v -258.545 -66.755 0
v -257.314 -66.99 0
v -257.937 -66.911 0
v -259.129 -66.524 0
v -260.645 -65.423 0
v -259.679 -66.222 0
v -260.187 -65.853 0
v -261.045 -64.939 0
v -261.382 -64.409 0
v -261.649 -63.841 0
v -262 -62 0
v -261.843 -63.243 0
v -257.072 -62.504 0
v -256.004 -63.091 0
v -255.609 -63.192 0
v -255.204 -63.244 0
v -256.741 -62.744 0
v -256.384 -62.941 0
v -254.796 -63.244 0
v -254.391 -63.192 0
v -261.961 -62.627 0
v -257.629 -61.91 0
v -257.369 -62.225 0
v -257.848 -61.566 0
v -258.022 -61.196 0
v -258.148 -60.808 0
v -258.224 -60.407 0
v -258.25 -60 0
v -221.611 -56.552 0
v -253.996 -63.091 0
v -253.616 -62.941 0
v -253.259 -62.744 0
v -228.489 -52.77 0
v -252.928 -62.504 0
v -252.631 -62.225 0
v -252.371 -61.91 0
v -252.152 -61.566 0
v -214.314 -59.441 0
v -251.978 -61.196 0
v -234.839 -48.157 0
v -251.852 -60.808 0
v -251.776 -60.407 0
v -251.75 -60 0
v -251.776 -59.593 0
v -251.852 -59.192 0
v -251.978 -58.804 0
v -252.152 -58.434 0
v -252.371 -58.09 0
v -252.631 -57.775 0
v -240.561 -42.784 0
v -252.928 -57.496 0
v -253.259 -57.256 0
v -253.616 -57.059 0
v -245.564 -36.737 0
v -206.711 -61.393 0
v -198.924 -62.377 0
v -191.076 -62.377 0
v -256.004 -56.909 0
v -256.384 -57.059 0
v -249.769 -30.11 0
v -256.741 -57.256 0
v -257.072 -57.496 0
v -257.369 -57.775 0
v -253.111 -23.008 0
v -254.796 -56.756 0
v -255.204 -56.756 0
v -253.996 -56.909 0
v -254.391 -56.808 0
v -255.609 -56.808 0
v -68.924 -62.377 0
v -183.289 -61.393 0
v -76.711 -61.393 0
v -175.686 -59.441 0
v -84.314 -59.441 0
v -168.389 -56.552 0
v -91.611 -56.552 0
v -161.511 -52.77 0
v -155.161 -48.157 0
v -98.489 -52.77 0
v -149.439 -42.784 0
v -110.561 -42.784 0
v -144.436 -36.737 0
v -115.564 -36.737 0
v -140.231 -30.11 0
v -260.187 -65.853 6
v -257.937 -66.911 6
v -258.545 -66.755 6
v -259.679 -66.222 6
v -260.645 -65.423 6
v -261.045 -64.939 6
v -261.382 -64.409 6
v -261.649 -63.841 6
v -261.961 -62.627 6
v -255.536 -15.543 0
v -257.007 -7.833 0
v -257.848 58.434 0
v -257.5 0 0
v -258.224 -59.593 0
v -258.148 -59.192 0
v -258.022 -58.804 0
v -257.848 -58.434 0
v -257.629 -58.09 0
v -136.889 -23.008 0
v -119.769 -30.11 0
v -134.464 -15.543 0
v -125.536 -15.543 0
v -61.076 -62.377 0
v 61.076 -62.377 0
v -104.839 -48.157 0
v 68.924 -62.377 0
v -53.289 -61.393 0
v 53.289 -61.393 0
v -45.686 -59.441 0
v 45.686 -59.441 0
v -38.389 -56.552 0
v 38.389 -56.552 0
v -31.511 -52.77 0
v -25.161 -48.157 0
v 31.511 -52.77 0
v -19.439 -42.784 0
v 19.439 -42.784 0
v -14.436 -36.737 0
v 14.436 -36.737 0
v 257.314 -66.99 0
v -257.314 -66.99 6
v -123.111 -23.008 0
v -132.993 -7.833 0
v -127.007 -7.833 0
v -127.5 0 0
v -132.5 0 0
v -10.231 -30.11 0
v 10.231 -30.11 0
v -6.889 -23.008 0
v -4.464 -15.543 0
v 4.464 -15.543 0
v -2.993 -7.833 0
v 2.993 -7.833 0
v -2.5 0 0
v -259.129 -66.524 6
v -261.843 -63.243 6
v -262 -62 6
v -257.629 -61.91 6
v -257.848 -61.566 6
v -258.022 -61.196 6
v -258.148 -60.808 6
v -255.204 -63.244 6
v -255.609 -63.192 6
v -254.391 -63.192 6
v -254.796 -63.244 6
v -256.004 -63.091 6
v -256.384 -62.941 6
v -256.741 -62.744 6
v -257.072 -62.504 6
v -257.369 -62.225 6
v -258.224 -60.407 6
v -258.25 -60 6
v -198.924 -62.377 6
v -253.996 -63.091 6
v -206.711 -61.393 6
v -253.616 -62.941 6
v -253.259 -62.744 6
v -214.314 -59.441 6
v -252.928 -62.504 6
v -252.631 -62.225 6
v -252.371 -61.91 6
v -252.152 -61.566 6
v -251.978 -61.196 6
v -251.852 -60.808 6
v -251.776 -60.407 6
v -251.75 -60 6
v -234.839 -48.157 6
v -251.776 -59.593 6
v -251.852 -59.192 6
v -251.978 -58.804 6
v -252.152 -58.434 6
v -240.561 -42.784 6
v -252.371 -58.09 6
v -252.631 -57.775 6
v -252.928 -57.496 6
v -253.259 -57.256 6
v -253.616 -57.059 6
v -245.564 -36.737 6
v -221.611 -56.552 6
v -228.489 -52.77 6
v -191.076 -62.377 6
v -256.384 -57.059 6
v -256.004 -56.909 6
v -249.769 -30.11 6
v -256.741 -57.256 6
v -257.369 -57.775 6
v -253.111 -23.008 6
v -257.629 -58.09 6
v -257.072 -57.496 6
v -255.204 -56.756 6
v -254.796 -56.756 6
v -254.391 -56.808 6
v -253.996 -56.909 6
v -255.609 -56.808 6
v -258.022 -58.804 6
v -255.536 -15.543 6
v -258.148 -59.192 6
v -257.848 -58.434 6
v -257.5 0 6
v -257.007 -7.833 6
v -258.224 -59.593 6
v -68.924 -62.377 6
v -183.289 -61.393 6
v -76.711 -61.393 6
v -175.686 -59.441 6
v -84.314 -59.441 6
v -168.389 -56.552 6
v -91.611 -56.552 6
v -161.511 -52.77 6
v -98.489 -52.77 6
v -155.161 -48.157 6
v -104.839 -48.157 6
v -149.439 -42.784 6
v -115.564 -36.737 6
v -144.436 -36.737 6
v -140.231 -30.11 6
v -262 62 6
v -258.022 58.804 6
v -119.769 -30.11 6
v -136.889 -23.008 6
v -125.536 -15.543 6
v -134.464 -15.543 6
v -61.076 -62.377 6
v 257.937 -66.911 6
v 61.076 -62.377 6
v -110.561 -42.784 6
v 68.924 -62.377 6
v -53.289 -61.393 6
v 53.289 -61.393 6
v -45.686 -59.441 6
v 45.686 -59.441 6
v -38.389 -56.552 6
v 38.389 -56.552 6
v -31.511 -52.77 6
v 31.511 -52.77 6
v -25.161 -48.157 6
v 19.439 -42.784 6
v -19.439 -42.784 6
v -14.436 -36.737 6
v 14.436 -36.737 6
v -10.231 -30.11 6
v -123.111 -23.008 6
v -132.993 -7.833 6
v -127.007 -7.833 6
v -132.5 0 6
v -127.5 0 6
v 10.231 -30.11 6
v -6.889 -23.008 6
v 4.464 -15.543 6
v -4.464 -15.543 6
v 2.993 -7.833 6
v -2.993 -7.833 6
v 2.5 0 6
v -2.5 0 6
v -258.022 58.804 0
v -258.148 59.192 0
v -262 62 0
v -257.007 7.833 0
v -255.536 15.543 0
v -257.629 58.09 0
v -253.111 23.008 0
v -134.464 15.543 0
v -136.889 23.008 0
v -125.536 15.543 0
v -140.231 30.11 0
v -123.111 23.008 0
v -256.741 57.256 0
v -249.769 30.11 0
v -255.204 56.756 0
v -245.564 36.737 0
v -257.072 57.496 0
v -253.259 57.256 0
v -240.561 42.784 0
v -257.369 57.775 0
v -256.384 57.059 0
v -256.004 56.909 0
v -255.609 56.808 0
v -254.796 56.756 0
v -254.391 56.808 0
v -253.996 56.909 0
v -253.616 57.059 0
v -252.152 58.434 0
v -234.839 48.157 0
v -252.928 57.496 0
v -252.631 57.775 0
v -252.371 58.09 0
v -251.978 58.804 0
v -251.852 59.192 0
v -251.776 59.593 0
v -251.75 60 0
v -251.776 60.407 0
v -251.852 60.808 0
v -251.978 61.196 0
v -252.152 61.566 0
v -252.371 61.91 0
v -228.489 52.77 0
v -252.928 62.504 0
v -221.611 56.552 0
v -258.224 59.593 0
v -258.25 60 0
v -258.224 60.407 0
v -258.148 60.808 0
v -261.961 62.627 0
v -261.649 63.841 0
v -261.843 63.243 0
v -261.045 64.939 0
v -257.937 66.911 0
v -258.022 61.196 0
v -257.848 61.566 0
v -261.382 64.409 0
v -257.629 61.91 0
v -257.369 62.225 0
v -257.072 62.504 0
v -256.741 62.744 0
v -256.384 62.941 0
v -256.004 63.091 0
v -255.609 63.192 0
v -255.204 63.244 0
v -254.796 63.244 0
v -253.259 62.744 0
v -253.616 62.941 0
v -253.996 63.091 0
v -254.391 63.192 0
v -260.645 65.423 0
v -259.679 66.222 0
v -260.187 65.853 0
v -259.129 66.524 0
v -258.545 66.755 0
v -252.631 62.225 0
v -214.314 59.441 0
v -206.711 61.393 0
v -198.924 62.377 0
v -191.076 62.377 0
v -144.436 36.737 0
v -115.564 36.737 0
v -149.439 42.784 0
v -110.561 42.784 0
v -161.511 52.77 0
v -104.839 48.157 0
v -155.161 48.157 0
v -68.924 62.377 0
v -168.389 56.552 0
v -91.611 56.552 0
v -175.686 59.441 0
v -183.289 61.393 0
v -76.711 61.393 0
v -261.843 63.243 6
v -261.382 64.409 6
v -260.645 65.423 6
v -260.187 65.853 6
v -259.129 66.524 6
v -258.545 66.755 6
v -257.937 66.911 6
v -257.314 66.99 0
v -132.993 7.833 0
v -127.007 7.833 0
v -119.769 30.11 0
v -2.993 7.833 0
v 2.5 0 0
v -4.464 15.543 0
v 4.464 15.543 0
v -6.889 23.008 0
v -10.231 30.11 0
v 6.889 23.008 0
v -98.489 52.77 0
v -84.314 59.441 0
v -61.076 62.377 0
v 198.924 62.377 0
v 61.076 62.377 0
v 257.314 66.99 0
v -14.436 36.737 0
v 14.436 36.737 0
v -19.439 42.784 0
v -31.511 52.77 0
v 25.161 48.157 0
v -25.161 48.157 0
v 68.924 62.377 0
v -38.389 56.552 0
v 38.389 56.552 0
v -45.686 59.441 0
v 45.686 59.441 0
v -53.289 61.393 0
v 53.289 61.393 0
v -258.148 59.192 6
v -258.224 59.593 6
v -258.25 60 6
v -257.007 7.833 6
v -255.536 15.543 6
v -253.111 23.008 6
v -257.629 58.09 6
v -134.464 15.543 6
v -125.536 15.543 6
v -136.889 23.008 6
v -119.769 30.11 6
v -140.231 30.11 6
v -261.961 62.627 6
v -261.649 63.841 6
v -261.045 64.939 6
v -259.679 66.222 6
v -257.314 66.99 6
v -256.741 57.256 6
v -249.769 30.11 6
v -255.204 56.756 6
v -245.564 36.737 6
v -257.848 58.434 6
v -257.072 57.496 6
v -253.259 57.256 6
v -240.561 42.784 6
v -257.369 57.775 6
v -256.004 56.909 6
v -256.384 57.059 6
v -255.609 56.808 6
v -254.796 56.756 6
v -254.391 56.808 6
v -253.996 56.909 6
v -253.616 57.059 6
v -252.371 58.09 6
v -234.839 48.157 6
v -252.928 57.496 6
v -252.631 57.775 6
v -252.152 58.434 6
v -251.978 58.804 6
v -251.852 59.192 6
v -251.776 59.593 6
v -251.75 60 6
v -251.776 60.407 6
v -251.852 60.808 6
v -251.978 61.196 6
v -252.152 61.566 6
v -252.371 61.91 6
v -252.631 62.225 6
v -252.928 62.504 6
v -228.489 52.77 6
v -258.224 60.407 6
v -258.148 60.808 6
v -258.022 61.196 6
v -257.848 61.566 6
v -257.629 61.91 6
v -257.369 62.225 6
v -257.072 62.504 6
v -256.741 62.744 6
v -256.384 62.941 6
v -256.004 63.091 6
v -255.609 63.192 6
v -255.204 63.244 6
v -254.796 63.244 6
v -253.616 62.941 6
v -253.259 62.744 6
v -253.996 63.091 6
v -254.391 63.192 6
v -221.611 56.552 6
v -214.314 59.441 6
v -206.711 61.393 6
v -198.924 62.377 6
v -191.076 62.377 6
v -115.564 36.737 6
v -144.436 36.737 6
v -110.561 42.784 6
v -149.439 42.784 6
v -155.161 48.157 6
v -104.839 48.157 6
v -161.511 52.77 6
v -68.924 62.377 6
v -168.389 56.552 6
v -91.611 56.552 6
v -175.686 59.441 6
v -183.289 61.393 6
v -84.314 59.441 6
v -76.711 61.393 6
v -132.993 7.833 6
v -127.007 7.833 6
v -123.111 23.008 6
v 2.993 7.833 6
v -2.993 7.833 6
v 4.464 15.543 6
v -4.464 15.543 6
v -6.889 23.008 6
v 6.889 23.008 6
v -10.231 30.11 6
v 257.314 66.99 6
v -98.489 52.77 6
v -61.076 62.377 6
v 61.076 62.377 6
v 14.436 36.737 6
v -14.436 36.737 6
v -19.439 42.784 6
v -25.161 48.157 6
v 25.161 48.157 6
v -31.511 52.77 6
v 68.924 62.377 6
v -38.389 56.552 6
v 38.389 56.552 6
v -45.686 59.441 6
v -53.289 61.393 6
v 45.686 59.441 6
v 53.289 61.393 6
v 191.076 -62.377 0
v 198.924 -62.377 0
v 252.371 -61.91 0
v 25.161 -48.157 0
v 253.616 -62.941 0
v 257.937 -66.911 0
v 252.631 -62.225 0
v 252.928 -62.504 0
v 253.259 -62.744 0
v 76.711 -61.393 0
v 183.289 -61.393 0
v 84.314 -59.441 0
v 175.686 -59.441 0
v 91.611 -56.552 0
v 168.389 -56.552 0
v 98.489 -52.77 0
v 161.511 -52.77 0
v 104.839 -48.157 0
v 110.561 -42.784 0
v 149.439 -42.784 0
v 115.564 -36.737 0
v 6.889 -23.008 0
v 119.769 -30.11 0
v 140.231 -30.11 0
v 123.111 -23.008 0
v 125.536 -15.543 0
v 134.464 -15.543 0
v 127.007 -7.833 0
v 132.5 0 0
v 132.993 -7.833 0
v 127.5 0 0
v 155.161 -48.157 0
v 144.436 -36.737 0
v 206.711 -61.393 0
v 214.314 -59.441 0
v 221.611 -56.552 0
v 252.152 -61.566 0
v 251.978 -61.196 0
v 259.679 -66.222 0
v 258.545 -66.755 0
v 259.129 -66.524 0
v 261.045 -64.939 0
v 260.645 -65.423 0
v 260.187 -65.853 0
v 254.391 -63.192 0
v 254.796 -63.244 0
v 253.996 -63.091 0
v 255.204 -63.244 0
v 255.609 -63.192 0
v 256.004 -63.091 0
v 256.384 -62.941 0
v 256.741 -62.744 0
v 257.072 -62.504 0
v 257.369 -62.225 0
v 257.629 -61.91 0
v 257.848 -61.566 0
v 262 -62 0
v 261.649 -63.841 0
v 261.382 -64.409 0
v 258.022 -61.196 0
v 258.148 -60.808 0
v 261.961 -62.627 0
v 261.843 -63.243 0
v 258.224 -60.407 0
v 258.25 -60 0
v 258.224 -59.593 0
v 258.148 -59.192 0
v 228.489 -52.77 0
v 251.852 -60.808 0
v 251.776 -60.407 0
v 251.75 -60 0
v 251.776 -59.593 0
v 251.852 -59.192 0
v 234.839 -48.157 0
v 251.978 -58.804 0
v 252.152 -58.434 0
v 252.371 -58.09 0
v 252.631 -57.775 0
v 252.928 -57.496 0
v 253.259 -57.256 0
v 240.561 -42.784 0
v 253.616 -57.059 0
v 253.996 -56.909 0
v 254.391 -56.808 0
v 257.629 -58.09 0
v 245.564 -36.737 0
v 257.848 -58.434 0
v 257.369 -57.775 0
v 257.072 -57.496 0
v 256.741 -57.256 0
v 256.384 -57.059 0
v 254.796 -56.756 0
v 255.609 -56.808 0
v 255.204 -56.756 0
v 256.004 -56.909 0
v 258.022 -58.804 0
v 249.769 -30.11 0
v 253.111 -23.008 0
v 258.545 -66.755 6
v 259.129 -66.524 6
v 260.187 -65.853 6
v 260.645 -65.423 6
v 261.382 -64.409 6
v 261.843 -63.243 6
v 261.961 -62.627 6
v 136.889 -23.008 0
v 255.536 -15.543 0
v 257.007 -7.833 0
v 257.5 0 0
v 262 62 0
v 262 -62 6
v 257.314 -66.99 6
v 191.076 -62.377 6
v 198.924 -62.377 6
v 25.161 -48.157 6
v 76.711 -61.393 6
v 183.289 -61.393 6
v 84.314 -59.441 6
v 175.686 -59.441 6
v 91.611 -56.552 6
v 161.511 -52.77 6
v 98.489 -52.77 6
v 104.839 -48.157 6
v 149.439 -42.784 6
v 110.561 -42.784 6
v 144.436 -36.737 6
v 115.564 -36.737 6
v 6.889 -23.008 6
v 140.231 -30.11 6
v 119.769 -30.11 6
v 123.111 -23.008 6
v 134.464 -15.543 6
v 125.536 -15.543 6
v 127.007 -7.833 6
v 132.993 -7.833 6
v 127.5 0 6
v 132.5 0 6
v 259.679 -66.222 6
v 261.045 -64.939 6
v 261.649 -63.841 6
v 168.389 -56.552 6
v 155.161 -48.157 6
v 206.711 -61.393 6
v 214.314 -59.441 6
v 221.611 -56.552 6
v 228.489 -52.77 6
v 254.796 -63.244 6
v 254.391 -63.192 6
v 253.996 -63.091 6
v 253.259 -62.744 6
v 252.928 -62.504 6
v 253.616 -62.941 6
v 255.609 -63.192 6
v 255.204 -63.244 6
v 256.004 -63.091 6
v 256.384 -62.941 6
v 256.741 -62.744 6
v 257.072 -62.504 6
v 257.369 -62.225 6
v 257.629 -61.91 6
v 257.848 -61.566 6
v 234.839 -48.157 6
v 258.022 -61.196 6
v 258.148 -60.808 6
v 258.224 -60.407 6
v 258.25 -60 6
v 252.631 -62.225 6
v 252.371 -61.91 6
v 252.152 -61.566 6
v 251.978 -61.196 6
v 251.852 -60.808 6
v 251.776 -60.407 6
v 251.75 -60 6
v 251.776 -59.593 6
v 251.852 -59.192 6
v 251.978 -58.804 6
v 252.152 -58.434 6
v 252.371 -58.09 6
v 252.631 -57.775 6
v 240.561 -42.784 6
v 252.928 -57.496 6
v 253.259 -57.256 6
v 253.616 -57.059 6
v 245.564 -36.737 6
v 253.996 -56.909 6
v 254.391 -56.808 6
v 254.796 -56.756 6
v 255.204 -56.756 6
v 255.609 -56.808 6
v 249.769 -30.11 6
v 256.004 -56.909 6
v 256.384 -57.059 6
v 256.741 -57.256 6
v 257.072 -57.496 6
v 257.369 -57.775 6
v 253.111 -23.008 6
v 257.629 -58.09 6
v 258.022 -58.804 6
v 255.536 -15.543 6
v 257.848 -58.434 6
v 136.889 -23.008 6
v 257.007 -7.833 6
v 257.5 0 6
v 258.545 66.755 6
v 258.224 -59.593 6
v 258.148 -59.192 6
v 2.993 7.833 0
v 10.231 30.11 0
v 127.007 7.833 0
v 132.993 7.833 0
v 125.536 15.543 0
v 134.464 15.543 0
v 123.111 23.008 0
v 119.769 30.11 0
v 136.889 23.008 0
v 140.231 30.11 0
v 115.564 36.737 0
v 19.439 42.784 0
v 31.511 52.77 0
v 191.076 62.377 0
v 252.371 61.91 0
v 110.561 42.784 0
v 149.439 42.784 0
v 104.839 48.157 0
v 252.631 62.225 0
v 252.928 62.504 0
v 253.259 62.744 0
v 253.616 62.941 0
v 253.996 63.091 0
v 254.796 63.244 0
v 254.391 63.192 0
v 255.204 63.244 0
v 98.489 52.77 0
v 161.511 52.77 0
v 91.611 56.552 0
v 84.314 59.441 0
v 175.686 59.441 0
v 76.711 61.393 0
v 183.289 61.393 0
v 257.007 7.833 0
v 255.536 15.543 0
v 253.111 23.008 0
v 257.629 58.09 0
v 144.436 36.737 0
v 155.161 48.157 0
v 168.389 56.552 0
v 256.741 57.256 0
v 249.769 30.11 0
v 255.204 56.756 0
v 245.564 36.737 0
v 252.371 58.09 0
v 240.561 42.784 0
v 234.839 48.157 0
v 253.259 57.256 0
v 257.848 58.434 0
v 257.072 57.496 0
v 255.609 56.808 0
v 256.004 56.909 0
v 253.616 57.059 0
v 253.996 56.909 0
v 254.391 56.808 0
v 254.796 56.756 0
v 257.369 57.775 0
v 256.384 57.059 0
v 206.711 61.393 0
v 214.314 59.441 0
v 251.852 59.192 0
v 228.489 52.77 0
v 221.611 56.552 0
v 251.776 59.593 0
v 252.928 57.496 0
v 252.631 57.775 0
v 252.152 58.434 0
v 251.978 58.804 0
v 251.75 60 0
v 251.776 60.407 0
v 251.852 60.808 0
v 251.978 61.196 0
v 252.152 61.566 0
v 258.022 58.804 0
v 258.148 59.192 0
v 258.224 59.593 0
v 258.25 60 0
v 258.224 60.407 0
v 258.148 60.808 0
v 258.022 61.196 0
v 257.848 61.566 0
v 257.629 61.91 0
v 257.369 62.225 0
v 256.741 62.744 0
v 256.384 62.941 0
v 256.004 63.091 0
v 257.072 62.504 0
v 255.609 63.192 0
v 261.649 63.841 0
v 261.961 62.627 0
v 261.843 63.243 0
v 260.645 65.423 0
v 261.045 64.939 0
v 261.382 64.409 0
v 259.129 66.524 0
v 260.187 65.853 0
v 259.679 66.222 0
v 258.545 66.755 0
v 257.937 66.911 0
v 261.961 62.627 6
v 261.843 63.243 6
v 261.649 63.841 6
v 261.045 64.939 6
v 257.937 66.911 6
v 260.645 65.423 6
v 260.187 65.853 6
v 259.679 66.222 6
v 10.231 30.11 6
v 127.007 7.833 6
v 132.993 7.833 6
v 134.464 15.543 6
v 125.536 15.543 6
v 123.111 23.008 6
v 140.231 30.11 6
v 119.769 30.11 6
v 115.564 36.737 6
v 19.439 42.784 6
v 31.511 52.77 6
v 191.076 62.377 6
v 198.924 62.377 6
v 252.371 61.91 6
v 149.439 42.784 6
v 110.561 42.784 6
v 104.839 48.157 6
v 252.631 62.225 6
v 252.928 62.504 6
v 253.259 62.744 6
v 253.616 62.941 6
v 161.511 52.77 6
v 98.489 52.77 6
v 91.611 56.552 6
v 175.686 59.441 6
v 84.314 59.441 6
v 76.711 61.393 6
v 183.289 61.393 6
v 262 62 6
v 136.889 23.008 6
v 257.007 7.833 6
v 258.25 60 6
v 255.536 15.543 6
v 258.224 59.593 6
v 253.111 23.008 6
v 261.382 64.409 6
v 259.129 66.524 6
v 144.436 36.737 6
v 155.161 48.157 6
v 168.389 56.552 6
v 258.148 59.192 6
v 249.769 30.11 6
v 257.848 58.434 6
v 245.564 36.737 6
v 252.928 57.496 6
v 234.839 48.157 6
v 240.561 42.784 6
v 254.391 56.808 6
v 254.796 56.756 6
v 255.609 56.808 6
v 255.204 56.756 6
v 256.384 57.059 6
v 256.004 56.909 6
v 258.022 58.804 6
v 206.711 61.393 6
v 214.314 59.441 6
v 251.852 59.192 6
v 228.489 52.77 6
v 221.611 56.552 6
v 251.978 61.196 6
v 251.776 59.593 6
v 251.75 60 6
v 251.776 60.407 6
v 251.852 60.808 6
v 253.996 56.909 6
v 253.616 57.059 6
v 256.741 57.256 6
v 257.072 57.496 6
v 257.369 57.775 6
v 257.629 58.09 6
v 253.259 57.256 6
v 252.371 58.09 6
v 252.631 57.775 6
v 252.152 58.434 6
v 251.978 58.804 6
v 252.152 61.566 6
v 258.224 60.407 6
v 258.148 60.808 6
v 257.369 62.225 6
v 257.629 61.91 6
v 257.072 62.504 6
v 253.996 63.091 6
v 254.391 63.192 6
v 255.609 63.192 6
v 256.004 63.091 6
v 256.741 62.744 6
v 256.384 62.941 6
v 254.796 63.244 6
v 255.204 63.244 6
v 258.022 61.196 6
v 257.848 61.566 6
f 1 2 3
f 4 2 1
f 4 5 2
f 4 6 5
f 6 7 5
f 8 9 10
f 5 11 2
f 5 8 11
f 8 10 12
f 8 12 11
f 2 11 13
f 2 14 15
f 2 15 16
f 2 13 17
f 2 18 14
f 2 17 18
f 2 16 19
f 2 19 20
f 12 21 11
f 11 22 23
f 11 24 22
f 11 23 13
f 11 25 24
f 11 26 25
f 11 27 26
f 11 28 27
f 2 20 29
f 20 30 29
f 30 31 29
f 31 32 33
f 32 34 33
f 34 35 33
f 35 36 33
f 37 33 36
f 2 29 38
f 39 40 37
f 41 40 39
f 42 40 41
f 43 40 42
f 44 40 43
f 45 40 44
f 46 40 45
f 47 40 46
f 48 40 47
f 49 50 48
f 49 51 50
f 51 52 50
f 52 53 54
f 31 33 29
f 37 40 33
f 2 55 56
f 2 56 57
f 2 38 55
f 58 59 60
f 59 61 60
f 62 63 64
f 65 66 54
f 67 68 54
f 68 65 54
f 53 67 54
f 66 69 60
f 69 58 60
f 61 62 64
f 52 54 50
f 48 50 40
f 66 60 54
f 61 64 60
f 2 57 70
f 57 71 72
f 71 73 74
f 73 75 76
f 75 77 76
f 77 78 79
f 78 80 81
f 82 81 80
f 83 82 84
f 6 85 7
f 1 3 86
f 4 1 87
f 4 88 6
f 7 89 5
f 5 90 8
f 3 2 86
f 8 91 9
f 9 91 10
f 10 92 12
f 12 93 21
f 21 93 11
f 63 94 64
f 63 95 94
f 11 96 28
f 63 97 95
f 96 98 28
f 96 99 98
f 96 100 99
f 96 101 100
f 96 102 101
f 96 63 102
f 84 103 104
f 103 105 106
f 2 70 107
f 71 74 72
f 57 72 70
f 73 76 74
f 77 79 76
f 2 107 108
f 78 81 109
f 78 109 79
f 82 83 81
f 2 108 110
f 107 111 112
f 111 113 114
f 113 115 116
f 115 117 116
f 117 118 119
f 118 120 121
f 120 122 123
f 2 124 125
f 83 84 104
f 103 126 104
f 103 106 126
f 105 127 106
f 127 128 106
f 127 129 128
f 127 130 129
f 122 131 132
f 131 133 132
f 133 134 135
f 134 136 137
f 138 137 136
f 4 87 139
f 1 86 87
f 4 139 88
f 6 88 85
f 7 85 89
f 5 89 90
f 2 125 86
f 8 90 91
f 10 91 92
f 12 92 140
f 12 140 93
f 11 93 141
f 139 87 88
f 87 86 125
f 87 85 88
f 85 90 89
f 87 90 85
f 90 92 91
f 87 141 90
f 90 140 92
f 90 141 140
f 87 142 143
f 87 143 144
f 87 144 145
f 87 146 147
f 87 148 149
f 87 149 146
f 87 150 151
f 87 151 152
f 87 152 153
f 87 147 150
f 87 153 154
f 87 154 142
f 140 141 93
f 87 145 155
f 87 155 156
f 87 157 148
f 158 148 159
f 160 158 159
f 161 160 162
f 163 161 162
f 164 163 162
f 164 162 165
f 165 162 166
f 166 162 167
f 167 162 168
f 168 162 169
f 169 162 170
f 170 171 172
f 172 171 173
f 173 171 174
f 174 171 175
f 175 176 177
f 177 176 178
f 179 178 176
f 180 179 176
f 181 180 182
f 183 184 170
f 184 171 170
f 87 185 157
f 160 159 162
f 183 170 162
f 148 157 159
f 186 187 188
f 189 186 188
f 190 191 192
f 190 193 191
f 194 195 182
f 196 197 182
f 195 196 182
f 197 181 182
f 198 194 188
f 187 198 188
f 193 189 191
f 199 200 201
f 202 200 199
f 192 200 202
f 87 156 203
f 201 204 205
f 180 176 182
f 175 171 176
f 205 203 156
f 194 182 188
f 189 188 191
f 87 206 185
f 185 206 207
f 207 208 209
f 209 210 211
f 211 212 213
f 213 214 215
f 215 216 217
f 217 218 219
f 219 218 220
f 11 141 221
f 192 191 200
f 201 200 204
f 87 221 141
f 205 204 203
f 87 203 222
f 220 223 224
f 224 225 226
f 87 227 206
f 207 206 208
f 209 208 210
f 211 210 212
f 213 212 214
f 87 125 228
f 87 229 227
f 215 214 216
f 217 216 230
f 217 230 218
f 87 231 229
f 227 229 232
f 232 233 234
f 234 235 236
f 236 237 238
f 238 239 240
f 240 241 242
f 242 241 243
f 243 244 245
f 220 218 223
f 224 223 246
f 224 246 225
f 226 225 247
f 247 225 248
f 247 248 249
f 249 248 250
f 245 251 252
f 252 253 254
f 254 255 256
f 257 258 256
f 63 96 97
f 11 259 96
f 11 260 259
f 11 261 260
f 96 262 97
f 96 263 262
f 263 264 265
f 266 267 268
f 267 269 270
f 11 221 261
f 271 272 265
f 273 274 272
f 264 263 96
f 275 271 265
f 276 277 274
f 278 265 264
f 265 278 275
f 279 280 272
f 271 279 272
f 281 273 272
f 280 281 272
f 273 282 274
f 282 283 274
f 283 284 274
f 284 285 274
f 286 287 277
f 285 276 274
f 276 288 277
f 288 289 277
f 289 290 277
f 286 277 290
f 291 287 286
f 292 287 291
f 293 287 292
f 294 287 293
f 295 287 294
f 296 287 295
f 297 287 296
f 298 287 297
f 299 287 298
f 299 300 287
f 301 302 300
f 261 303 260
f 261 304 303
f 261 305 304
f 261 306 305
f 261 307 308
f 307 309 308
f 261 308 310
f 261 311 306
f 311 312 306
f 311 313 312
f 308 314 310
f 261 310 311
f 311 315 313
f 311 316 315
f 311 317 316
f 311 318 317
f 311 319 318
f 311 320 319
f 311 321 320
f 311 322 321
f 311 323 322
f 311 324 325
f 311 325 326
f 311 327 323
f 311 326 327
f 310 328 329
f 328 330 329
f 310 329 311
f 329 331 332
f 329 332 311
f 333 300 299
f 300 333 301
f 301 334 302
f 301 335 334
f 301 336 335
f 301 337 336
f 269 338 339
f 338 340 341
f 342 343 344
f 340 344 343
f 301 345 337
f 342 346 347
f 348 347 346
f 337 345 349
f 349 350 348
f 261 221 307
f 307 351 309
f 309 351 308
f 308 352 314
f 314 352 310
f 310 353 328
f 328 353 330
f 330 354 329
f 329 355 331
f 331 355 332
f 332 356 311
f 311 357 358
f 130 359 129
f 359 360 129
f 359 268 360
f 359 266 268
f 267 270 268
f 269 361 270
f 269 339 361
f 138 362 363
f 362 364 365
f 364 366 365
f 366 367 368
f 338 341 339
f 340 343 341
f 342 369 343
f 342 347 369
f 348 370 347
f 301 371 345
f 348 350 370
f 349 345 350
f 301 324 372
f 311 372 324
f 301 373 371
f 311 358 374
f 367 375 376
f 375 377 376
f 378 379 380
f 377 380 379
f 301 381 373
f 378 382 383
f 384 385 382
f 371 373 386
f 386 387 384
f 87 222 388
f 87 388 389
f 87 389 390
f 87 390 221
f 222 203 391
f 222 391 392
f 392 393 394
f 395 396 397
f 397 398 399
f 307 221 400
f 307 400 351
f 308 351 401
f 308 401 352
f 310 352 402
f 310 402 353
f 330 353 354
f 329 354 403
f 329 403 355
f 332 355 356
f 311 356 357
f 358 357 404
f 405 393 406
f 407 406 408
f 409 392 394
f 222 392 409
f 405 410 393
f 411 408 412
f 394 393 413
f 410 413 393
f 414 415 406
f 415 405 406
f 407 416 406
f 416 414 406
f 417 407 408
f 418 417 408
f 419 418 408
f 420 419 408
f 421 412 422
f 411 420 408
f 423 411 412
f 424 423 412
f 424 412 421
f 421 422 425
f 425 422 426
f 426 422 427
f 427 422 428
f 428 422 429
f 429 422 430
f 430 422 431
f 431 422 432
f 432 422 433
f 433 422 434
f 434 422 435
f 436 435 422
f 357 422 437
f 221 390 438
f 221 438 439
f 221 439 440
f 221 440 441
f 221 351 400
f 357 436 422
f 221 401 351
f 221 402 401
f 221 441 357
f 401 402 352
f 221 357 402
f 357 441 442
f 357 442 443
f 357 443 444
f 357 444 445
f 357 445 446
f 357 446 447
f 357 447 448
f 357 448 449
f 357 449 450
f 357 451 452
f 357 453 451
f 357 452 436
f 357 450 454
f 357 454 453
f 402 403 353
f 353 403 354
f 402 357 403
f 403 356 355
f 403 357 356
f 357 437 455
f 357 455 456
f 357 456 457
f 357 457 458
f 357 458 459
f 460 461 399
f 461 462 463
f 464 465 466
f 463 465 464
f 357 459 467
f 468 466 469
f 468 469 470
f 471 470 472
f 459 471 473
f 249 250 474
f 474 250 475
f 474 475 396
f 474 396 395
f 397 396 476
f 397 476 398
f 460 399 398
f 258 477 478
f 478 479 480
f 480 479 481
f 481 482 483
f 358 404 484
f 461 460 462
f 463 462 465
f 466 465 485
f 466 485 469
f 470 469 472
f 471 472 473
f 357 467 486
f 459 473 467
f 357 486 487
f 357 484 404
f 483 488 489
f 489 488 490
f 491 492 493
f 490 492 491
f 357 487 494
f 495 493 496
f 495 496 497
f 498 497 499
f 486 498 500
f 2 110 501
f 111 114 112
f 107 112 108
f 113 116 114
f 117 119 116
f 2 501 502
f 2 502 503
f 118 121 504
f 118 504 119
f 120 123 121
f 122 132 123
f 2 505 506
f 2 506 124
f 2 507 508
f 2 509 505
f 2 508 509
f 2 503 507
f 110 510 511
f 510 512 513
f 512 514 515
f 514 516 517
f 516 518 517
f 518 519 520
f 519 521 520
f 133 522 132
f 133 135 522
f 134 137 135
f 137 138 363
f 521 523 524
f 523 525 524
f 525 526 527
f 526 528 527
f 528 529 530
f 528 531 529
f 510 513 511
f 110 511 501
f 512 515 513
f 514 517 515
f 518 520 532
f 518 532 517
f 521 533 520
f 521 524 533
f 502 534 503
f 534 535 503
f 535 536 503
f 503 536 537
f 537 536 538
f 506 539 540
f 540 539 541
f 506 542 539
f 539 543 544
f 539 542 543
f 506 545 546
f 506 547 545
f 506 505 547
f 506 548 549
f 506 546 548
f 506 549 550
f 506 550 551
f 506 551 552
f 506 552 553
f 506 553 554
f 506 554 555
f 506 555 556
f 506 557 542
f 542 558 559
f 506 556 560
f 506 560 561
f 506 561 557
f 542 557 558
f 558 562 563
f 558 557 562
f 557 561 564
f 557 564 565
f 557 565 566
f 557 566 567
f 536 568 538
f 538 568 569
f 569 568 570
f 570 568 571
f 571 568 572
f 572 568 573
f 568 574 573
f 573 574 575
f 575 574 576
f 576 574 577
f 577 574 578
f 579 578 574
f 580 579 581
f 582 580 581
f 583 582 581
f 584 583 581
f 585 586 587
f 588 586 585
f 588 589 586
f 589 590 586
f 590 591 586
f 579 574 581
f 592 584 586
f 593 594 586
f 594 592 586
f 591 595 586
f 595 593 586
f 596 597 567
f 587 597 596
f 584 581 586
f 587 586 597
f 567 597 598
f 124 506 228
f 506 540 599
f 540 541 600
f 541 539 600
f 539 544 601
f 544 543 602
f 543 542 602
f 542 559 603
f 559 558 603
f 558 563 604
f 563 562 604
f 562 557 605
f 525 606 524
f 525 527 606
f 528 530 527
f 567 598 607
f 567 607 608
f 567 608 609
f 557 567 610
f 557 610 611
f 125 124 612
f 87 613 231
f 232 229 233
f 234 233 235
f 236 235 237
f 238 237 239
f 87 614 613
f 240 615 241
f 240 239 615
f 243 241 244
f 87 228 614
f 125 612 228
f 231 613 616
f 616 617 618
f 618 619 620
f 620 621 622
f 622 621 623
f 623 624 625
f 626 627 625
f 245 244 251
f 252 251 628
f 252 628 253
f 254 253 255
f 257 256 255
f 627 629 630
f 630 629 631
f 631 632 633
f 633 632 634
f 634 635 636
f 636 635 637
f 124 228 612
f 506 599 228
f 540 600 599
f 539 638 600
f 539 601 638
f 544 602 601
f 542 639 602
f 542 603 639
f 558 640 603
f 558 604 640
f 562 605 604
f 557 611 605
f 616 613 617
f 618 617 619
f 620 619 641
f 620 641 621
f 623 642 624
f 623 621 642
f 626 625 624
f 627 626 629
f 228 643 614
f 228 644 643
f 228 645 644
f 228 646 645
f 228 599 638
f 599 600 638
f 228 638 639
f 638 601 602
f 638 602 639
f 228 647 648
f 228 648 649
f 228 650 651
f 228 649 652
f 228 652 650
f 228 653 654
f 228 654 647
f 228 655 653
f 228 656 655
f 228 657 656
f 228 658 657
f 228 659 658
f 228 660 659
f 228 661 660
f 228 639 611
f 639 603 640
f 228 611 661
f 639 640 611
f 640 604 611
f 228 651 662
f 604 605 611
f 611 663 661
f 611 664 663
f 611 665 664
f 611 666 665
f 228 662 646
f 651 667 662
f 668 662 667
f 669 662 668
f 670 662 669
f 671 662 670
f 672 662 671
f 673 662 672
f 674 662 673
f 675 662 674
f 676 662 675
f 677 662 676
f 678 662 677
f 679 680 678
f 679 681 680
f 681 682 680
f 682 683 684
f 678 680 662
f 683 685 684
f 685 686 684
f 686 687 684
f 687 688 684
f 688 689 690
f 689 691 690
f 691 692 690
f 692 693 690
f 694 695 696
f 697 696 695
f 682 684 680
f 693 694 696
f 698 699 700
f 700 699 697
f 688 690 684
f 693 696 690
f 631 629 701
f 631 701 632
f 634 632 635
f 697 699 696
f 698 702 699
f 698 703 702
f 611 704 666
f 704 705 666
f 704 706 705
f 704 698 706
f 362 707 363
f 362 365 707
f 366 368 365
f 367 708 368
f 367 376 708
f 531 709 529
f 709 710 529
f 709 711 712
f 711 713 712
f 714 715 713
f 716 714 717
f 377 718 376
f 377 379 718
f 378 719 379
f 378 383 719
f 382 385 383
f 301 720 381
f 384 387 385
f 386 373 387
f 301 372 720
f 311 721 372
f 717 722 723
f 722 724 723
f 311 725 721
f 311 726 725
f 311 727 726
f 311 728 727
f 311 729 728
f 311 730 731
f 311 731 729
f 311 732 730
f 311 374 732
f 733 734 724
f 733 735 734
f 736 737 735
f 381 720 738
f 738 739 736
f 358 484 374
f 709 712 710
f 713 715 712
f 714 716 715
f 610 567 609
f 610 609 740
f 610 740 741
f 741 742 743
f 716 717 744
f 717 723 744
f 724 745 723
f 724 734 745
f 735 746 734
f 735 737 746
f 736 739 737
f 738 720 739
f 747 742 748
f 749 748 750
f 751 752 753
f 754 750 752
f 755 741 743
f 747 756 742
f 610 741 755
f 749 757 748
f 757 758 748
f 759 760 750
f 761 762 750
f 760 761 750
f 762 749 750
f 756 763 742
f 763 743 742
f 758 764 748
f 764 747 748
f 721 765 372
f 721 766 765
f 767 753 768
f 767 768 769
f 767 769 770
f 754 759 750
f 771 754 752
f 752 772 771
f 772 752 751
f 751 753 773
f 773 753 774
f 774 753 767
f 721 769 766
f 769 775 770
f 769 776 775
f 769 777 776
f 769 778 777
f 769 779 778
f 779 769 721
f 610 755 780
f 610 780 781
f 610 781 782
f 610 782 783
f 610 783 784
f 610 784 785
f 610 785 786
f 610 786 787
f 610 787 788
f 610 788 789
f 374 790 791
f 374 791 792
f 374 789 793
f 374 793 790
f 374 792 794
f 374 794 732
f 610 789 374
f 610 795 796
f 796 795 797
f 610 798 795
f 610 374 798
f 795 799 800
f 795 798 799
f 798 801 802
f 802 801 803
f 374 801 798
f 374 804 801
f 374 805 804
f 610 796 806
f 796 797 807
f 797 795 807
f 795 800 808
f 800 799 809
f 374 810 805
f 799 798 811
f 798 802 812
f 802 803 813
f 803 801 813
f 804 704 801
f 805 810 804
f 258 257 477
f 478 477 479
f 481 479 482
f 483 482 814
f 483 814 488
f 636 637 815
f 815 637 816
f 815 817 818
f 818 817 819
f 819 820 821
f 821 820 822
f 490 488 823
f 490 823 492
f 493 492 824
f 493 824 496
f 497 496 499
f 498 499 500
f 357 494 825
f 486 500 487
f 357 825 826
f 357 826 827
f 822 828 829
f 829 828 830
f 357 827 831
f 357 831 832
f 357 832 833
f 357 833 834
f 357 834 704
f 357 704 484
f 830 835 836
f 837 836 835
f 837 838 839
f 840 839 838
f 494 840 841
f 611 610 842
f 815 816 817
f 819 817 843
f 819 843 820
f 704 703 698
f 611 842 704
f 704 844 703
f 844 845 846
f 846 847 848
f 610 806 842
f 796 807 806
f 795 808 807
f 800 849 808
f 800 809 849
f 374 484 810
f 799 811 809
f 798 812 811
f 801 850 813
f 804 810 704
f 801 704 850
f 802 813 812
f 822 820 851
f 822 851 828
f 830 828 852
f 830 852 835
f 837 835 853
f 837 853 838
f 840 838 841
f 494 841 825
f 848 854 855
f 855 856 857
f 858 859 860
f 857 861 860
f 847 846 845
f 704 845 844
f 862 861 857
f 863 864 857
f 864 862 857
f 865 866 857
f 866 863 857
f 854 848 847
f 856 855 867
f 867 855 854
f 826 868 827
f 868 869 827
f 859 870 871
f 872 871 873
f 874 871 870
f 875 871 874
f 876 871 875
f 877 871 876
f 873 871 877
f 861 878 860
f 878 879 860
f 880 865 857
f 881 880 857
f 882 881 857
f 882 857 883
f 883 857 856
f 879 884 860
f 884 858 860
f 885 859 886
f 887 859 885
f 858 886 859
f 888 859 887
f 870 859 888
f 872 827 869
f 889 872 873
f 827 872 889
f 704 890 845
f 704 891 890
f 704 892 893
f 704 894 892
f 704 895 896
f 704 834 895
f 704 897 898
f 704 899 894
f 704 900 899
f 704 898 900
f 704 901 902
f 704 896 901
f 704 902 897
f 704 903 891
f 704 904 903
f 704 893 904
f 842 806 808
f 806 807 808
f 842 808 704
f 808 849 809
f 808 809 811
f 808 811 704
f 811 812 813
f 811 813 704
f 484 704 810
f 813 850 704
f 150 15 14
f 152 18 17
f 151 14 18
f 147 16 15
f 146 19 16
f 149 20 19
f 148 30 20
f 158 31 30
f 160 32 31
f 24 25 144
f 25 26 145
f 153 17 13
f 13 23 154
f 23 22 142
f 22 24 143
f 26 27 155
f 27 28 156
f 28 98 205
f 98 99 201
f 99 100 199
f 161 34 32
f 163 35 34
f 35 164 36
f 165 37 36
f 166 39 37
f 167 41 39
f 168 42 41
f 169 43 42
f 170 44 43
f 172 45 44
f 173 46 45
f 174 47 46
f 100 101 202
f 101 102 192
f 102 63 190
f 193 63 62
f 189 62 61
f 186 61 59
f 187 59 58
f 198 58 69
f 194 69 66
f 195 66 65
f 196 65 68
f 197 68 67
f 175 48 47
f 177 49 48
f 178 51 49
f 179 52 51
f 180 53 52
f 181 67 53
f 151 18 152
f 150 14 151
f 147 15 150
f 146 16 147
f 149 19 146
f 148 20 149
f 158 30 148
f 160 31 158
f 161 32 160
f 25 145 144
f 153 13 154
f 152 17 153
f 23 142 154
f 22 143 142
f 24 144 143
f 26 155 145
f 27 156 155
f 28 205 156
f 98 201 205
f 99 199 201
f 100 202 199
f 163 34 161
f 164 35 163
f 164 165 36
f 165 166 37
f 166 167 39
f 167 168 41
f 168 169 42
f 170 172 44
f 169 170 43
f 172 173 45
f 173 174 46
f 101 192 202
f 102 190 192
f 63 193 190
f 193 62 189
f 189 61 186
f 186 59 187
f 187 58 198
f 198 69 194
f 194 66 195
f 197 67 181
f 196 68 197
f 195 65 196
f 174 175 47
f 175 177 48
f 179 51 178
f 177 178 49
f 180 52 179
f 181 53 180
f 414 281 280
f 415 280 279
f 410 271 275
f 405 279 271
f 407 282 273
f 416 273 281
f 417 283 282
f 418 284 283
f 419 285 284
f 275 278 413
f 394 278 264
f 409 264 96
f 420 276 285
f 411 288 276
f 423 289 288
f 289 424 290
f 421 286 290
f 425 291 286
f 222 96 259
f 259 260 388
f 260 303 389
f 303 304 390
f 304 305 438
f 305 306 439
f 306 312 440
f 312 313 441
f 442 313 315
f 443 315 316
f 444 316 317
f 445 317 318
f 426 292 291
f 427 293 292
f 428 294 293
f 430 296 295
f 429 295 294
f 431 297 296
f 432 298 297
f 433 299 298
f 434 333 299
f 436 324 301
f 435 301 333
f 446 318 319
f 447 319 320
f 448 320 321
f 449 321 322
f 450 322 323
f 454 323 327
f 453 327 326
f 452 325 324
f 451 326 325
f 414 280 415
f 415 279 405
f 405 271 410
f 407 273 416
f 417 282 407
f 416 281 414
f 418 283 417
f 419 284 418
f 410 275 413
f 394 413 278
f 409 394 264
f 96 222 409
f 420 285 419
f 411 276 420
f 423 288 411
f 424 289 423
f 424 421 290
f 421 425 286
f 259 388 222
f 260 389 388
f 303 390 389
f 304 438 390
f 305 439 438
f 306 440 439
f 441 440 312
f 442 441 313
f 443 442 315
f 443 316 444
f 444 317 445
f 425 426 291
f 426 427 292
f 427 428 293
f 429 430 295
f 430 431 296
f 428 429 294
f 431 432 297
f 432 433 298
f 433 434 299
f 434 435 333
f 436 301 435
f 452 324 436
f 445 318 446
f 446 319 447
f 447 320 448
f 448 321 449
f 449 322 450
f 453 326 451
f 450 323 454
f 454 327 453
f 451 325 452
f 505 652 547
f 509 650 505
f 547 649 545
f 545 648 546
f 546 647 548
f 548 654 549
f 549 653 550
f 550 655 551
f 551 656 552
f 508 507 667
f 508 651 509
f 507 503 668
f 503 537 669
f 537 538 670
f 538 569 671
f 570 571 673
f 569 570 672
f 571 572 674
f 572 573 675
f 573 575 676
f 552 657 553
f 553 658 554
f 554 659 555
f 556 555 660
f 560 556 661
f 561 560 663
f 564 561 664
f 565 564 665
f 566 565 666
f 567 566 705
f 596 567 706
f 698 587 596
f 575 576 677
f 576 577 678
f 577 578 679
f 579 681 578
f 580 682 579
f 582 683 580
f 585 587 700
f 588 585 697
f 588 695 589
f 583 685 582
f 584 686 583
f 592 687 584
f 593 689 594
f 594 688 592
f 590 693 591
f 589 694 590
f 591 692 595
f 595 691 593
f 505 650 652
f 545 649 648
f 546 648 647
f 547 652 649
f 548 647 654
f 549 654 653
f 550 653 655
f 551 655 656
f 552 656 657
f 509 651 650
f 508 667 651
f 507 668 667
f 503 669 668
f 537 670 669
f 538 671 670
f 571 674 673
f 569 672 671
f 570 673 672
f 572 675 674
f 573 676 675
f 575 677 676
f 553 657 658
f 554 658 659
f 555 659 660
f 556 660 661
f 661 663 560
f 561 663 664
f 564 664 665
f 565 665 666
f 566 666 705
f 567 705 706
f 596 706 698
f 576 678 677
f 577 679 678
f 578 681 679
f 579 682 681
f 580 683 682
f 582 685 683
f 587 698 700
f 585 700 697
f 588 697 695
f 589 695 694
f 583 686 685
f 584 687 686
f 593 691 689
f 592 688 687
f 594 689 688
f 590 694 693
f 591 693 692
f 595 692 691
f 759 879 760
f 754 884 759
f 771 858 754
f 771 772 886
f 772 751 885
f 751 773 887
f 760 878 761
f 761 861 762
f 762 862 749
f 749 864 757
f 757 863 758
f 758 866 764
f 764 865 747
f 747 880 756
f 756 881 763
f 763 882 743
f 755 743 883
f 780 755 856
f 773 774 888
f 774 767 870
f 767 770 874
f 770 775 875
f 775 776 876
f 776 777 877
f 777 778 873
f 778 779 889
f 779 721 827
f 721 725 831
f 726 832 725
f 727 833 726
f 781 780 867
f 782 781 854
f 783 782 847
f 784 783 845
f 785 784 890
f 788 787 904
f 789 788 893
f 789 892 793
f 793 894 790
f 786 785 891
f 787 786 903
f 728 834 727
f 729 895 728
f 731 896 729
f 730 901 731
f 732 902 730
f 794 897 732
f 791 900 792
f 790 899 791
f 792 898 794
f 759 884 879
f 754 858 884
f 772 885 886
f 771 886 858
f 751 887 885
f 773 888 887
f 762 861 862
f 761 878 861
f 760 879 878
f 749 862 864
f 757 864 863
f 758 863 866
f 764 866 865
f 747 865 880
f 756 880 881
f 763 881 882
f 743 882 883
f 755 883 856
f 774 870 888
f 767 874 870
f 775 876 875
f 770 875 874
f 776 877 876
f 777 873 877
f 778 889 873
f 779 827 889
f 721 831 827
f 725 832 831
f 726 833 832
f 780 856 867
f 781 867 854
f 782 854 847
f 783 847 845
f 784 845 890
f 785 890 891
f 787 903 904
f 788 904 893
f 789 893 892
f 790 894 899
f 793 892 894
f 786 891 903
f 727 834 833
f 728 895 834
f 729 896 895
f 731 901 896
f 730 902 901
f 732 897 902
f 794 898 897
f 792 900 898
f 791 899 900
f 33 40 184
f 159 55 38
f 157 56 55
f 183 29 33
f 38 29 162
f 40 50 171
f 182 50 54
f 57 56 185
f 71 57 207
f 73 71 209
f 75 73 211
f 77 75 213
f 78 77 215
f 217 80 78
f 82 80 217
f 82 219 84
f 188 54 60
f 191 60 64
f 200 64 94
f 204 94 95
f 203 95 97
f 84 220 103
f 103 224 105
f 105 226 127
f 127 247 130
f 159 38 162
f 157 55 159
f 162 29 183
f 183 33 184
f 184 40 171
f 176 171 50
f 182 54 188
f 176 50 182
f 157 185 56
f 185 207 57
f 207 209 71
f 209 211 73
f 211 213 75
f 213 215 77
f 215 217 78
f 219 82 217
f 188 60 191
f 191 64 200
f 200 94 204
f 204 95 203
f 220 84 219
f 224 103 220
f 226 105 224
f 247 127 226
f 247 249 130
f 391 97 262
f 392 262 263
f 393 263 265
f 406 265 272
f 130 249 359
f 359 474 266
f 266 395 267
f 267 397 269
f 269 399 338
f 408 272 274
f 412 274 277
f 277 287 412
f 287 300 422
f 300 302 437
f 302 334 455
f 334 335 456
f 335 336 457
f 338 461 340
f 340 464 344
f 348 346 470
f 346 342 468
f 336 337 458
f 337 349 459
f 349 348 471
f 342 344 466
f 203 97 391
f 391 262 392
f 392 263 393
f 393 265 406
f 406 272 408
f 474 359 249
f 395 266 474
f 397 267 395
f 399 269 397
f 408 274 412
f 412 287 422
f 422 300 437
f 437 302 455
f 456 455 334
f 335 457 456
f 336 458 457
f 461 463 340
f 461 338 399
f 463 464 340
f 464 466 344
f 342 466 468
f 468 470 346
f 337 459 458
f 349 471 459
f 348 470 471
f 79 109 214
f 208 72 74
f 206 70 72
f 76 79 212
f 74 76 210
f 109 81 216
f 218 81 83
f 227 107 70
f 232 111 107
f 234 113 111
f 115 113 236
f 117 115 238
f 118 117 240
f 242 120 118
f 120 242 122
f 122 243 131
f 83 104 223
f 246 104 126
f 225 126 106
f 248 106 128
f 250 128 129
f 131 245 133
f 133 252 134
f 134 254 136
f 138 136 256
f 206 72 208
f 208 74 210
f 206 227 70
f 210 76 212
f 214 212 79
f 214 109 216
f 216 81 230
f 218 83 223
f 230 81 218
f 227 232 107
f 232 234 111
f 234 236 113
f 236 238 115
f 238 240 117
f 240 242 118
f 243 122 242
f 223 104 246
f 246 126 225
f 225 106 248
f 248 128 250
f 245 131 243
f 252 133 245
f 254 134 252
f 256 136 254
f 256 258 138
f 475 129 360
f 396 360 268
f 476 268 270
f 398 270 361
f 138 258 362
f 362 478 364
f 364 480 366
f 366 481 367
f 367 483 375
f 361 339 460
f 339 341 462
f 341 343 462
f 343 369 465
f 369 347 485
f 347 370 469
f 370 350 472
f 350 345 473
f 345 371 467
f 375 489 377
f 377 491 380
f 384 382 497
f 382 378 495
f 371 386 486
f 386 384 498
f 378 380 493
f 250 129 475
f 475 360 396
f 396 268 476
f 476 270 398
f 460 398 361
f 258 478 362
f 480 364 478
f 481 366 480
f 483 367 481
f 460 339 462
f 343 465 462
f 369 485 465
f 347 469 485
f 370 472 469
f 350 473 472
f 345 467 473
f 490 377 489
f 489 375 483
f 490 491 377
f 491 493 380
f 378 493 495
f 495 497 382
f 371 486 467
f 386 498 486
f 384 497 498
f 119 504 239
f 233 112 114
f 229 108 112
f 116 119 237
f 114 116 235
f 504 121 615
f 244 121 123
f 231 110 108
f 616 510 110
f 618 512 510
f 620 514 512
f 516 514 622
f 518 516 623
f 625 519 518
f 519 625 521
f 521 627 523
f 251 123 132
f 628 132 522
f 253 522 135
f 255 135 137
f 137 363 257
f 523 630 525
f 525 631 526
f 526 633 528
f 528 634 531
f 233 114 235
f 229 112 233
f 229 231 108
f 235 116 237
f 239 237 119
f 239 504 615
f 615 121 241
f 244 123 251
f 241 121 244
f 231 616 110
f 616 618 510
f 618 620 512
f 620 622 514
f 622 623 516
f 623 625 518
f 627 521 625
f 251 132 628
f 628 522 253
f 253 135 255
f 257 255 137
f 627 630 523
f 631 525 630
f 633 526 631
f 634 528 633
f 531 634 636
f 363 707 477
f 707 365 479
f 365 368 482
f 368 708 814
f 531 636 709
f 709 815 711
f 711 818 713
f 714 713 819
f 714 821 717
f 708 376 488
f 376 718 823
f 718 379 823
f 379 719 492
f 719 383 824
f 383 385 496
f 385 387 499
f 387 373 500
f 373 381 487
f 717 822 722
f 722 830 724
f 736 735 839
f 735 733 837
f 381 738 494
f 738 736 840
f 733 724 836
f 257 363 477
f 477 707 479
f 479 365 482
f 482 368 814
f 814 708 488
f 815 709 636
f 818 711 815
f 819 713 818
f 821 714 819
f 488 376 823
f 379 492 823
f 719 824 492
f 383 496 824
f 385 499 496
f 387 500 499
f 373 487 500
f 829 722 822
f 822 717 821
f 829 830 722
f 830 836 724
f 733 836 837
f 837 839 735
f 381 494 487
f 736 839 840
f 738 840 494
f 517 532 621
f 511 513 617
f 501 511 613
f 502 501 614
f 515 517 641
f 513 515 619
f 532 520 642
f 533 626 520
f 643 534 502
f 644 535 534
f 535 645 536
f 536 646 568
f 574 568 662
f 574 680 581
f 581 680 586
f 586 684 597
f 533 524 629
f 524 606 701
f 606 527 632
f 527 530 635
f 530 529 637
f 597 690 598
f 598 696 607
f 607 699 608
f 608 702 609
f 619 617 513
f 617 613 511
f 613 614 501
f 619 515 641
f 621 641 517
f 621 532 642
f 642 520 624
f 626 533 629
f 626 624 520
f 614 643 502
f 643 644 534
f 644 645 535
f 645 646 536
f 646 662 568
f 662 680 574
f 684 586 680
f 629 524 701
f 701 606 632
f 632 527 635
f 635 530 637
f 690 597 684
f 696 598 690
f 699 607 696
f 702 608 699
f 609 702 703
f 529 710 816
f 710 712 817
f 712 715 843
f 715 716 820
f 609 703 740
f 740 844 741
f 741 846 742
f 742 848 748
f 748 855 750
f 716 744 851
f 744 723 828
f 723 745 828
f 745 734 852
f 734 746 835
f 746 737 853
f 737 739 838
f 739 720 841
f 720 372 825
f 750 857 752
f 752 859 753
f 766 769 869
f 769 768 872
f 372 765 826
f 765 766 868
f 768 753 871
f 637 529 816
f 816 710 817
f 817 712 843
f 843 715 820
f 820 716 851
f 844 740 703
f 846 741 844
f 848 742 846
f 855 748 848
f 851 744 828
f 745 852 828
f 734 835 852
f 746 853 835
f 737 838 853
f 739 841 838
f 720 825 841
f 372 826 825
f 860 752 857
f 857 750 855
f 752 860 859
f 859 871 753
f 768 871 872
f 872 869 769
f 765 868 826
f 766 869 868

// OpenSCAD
$fn = 50;

difference() {
	union() {
		hull() {
			translate(v = [-257.0, 62.0, 0]) {
				cylinder(h = 6, r = 5);
			}
			translate(v = [257.0, 62.0, 0]) {
				cylinder(h = 6, r = 5);
			}
			translate(v = [-257.0, -62.0, 0]) {
				cylinder(h = 6, r = 5);
			}
			translate(v = [257.0, -62.0, 0]) {
				cylinder(h = 6, r = 5);
			}
		}
	}
	union() {
		translate(v = [-255.0, -60.0, -100.0]) {
			cylinder(h = 200, r = 3.25);
		}
		translate(v = [-255.0, 60.0, -100.0]) {
			cylinder(h = 200, r = 3.25);
		}
		translate(v = [255.0, -60.0, -100.0]) {
			cylinder(h = 200, r = 3.25);
		}
		translate(v = [255.0, 60.0, -100.0]) {
			cylinder(h = 200, r = 3.25);
		}
		translate(v = [-255.0, -60.0, -100.0]) {
			cylinder(h = 200, r = 1.8);
		}
		translate(v = [-255.0, 60.0, -100.0]) {
			cylinder(h = 200, r = 1.8);
		}
		translate(v = [255.0, -60.0, -100.0]) {
			cylinder(h = 200, r = 1.8);
		}
		translate(v = [255.0, 60.0, -100.0]) {
			cylinder(h = 200, r = 1.8);
		}
		translate(v = [-195.0, 0, 0.0]) {
			cylinder(h = 6, r = 62.5);
		}
		translate(v = [-65.0, 0, 0.0]) {
			cylinder(h = 6, r = 62.5);
		}
		translate(v = [65.0, 0, 0.0]) {
			cylinder(h = 6, r = 62.5);
		}
		translate(v = [195.0, 0, 0.0]) {
			cylinder(h = 6, r = 62.5);
		}
	}
}
